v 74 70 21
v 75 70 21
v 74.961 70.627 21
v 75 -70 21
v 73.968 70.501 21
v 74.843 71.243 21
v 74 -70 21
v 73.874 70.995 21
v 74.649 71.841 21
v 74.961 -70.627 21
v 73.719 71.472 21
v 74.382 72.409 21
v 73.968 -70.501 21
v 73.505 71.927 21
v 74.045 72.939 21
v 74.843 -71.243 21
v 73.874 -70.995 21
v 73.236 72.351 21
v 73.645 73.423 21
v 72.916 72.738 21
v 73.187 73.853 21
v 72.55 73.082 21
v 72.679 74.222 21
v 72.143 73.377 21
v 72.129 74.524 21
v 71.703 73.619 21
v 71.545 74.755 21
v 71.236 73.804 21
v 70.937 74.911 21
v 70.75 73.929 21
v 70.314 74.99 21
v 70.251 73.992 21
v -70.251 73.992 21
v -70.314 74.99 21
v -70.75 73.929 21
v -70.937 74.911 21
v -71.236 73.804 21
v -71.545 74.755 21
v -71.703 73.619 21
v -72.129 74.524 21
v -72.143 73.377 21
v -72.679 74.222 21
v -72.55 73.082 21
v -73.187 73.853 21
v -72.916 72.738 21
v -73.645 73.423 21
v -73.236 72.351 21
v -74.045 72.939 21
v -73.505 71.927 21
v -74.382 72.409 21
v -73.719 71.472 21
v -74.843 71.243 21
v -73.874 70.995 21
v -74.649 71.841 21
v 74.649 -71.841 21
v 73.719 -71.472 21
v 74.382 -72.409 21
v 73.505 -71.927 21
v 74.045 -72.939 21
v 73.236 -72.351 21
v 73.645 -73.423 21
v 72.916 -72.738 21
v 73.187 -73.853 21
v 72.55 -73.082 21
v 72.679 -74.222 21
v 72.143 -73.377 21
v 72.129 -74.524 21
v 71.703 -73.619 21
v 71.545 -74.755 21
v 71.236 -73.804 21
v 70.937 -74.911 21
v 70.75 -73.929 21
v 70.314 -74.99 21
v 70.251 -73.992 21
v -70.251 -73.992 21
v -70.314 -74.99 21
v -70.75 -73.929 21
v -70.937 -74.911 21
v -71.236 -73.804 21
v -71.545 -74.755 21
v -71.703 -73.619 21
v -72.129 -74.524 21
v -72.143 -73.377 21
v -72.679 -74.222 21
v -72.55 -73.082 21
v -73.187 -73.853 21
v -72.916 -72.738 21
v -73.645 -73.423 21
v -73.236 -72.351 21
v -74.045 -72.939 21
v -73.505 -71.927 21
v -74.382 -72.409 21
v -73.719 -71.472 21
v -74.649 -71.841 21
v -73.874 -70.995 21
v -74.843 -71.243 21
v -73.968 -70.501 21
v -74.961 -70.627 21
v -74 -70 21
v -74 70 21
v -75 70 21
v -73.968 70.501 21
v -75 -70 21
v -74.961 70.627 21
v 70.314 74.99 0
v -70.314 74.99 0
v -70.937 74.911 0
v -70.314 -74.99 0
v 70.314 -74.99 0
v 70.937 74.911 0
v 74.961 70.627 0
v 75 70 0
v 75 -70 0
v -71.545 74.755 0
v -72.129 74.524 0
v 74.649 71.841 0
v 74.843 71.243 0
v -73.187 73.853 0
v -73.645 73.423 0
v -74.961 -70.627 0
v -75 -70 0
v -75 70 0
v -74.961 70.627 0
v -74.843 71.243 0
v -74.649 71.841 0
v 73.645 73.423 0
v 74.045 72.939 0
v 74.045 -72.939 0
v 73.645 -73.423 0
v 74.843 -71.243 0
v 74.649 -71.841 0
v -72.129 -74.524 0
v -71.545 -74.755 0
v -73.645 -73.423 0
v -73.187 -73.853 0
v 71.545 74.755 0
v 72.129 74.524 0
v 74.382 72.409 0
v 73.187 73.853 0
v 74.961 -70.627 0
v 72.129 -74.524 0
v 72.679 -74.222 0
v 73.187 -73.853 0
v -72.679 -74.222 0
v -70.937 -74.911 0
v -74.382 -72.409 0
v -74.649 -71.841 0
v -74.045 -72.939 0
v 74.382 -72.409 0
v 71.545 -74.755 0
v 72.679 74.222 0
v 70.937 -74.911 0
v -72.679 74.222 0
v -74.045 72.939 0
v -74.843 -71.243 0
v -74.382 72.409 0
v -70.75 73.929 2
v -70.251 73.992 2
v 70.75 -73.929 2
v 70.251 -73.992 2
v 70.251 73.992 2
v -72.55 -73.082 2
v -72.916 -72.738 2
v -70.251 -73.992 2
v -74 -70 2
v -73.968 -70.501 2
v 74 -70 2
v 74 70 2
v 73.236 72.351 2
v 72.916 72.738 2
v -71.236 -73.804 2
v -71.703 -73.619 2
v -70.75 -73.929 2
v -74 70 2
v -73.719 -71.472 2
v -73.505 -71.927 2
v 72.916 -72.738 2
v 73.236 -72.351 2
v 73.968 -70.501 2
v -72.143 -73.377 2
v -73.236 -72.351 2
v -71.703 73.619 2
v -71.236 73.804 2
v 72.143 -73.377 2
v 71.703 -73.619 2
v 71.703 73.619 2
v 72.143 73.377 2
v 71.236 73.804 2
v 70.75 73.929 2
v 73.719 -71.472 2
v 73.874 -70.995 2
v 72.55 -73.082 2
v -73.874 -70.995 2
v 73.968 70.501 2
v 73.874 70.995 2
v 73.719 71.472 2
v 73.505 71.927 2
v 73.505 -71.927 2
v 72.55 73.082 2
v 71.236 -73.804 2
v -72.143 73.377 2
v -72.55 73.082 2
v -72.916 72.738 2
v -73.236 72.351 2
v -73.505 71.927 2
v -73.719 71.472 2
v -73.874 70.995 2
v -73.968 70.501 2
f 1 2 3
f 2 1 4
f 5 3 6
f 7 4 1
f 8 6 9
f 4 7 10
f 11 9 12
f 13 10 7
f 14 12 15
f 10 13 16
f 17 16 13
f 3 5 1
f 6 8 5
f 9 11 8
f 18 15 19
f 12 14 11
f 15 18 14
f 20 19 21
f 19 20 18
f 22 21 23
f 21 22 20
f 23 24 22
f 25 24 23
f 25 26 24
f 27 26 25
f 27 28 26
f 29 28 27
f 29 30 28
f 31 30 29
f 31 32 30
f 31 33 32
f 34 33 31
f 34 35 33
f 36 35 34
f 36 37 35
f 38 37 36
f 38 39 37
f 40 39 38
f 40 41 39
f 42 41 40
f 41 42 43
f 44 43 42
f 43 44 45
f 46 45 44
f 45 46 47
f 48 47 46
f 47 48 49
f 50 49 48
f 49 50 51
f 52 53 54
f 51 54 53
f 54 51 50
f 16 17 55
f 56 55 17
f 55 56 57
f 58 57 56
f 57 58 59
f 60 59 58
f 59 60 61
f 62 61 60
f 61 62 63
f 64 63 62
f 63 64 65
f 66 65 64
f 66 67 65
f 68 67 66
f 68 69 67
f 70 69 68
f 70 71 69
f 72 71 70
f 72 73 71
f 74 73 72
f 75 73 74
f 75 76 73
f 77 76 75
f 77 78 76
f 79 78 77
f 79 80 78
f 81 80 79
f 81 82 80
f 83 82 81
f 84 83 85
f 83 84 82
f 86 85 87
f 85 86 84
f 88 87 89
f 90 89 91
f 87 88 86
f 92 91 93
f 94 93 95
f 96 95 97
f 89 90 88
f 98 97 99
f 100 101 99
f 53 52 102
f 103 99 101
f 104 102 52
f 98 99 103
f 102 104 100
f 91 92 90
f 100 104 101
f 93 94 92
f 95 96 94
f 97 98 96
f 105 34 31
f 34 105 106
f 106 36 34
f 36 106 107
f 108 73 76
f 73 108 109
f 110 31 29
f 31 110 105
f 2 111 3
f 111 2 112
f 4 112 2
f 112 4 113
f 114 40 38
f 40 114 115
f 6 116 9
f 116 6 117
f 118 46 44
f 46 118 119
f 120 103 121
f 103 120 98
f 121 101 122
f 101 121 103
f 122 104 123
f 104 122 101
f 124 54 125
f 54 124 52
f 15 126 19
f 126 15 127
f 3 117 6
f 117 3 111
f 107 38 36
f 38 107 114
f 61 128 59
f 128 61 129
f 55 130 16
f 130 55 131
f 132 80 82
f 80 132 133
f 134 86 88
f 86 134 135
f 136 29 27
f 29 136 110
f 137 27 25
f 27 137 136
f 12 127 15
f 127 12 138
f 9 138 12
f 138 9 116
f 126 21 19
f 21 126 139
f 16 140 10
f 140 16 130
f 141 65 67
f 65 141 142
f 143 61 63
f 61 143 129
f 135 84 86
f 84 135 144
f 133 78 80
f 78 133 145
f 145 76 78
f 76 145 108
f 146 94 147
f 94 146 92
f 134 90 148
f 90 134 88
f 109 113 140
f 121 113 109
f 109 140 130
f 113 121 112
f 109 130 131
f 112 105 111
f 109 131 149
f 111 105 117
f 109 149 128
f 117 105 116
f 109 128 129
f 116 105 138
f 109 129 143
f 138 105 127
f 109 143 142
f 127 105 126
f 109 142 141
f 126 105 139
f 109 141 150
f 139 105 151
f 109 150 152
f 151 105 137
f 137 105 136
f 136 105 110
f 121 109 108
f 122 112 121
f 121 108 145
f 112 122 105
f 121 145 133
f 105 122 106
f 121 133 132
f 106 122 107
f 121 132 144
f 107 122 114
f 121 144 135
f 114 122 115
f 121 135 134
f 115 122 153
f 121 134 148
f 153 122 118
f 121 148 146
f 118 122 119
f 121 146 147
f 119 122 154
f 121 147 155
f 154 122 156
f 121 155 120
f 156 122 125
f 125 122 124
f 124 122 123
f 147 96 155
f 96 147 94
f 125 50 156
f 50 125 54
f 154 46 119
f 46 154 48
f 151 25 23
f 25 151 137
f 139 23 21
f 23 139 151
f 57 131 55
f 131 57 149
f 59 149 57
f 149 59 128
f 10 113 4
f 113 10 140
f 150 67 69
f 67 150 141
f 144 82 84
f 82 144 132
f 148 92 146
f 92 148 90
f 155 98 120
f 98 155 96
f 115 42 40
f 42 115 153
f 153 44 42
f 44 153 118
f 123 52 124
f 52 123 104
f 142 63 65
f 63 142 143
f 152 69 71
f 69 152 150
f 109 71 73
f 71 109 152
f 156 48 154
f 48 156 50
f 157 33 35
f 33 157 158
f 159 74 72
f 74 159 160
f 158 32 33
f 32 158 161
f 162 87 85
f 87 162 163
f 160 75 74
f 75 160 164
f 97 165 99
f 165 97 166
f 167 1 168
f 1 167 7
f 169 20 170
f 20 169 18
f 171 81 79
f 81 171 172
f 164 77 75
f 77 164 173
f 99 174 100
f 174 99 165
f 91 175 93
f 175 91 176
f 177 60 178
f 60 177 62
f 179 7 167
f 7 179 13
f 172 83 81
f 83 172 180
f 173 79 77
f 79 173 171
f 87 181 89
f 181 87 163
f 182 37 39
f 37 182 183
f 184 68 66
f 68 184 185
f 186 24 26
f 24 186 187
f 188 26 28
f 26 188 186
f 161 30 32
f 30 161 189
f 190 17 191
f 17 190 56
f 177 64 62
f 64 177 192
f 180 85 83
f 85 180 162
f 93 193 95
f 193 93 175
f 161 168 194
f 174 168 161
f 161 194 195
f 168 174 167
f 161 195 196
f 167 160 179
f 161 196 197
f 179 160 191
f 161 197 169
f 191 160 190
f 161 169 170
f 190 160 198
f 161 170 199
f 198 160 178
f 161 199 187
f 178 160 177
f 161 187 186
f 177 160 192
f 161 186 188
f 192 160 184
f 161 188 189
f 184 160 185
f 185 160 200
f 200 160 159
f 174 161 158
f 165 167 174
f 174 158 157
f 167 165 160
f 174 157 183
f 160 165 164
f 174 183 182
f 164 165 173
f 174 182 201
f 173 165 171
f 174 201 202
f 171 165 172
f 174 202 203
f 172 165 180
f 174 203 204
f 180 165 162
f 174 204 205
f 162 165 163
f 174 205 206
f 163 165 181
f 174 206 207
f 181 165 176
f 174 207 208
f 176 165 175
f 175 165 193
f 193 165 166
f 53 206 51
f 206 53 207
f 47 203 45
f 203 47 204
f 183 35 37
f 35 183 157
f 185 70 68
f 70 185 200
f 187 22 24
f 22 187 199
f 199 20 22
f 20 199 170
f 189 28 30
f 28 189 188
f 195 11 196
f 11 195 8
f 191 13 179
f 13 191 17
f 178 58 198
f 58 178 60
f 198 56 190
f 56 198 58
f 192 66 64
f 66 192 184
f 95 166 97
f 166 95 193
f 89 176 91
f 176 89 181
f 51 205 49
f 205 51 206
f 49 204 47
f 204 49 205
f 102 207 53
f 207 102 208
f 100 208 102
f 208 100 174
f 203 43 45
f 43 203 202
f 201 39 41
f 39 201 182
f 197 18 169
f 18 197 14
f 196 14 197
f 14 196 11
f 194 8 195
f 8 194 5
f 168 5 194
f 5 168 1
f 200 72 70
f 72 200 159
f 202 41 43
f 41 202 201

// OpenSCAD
$fn = 50;


difference() {
	union() {
		hull() {
			translate(v = [-70.0000000000, 70.0000000000, 0]) {
				cylinder(h = 21, r = 5);
			}
			translate(v = [70.0000000000, 70.0000000000, 0]) {
				cylinder(h = 21, r = 5);
			}
			translate(v = [-70.0000000000, -70.0000000000, 0]) {
				cylinder(h = 21, r = 5);
			}
			translate(v = [70.0000000000, -70.0000000000, 0]) {
				cylinder(h = 21, r = 5);
			}
		}
	}
	union() {
		translate(v = [0, 0, 2]) {
			hull() {
				translate(v = [-70.0000000000, 70.0000000000, 0]) {
					cylinder(h = 19, r = 4);
				}
				translate(v = [70.0000000000, 70.0000000000, 0]) {
					cylinder(h = 19, r = 4);
				}
				translate(v = [-70.0000000000, -70.0000000000, 0]) {
					cylinder(h = 19, r = 4);
				}
				translate(v = [70.0000000000, -70.0000000000, 0]) {
					cylinder(h = 19, r = 4);
				}
			}
		}
	}
}
